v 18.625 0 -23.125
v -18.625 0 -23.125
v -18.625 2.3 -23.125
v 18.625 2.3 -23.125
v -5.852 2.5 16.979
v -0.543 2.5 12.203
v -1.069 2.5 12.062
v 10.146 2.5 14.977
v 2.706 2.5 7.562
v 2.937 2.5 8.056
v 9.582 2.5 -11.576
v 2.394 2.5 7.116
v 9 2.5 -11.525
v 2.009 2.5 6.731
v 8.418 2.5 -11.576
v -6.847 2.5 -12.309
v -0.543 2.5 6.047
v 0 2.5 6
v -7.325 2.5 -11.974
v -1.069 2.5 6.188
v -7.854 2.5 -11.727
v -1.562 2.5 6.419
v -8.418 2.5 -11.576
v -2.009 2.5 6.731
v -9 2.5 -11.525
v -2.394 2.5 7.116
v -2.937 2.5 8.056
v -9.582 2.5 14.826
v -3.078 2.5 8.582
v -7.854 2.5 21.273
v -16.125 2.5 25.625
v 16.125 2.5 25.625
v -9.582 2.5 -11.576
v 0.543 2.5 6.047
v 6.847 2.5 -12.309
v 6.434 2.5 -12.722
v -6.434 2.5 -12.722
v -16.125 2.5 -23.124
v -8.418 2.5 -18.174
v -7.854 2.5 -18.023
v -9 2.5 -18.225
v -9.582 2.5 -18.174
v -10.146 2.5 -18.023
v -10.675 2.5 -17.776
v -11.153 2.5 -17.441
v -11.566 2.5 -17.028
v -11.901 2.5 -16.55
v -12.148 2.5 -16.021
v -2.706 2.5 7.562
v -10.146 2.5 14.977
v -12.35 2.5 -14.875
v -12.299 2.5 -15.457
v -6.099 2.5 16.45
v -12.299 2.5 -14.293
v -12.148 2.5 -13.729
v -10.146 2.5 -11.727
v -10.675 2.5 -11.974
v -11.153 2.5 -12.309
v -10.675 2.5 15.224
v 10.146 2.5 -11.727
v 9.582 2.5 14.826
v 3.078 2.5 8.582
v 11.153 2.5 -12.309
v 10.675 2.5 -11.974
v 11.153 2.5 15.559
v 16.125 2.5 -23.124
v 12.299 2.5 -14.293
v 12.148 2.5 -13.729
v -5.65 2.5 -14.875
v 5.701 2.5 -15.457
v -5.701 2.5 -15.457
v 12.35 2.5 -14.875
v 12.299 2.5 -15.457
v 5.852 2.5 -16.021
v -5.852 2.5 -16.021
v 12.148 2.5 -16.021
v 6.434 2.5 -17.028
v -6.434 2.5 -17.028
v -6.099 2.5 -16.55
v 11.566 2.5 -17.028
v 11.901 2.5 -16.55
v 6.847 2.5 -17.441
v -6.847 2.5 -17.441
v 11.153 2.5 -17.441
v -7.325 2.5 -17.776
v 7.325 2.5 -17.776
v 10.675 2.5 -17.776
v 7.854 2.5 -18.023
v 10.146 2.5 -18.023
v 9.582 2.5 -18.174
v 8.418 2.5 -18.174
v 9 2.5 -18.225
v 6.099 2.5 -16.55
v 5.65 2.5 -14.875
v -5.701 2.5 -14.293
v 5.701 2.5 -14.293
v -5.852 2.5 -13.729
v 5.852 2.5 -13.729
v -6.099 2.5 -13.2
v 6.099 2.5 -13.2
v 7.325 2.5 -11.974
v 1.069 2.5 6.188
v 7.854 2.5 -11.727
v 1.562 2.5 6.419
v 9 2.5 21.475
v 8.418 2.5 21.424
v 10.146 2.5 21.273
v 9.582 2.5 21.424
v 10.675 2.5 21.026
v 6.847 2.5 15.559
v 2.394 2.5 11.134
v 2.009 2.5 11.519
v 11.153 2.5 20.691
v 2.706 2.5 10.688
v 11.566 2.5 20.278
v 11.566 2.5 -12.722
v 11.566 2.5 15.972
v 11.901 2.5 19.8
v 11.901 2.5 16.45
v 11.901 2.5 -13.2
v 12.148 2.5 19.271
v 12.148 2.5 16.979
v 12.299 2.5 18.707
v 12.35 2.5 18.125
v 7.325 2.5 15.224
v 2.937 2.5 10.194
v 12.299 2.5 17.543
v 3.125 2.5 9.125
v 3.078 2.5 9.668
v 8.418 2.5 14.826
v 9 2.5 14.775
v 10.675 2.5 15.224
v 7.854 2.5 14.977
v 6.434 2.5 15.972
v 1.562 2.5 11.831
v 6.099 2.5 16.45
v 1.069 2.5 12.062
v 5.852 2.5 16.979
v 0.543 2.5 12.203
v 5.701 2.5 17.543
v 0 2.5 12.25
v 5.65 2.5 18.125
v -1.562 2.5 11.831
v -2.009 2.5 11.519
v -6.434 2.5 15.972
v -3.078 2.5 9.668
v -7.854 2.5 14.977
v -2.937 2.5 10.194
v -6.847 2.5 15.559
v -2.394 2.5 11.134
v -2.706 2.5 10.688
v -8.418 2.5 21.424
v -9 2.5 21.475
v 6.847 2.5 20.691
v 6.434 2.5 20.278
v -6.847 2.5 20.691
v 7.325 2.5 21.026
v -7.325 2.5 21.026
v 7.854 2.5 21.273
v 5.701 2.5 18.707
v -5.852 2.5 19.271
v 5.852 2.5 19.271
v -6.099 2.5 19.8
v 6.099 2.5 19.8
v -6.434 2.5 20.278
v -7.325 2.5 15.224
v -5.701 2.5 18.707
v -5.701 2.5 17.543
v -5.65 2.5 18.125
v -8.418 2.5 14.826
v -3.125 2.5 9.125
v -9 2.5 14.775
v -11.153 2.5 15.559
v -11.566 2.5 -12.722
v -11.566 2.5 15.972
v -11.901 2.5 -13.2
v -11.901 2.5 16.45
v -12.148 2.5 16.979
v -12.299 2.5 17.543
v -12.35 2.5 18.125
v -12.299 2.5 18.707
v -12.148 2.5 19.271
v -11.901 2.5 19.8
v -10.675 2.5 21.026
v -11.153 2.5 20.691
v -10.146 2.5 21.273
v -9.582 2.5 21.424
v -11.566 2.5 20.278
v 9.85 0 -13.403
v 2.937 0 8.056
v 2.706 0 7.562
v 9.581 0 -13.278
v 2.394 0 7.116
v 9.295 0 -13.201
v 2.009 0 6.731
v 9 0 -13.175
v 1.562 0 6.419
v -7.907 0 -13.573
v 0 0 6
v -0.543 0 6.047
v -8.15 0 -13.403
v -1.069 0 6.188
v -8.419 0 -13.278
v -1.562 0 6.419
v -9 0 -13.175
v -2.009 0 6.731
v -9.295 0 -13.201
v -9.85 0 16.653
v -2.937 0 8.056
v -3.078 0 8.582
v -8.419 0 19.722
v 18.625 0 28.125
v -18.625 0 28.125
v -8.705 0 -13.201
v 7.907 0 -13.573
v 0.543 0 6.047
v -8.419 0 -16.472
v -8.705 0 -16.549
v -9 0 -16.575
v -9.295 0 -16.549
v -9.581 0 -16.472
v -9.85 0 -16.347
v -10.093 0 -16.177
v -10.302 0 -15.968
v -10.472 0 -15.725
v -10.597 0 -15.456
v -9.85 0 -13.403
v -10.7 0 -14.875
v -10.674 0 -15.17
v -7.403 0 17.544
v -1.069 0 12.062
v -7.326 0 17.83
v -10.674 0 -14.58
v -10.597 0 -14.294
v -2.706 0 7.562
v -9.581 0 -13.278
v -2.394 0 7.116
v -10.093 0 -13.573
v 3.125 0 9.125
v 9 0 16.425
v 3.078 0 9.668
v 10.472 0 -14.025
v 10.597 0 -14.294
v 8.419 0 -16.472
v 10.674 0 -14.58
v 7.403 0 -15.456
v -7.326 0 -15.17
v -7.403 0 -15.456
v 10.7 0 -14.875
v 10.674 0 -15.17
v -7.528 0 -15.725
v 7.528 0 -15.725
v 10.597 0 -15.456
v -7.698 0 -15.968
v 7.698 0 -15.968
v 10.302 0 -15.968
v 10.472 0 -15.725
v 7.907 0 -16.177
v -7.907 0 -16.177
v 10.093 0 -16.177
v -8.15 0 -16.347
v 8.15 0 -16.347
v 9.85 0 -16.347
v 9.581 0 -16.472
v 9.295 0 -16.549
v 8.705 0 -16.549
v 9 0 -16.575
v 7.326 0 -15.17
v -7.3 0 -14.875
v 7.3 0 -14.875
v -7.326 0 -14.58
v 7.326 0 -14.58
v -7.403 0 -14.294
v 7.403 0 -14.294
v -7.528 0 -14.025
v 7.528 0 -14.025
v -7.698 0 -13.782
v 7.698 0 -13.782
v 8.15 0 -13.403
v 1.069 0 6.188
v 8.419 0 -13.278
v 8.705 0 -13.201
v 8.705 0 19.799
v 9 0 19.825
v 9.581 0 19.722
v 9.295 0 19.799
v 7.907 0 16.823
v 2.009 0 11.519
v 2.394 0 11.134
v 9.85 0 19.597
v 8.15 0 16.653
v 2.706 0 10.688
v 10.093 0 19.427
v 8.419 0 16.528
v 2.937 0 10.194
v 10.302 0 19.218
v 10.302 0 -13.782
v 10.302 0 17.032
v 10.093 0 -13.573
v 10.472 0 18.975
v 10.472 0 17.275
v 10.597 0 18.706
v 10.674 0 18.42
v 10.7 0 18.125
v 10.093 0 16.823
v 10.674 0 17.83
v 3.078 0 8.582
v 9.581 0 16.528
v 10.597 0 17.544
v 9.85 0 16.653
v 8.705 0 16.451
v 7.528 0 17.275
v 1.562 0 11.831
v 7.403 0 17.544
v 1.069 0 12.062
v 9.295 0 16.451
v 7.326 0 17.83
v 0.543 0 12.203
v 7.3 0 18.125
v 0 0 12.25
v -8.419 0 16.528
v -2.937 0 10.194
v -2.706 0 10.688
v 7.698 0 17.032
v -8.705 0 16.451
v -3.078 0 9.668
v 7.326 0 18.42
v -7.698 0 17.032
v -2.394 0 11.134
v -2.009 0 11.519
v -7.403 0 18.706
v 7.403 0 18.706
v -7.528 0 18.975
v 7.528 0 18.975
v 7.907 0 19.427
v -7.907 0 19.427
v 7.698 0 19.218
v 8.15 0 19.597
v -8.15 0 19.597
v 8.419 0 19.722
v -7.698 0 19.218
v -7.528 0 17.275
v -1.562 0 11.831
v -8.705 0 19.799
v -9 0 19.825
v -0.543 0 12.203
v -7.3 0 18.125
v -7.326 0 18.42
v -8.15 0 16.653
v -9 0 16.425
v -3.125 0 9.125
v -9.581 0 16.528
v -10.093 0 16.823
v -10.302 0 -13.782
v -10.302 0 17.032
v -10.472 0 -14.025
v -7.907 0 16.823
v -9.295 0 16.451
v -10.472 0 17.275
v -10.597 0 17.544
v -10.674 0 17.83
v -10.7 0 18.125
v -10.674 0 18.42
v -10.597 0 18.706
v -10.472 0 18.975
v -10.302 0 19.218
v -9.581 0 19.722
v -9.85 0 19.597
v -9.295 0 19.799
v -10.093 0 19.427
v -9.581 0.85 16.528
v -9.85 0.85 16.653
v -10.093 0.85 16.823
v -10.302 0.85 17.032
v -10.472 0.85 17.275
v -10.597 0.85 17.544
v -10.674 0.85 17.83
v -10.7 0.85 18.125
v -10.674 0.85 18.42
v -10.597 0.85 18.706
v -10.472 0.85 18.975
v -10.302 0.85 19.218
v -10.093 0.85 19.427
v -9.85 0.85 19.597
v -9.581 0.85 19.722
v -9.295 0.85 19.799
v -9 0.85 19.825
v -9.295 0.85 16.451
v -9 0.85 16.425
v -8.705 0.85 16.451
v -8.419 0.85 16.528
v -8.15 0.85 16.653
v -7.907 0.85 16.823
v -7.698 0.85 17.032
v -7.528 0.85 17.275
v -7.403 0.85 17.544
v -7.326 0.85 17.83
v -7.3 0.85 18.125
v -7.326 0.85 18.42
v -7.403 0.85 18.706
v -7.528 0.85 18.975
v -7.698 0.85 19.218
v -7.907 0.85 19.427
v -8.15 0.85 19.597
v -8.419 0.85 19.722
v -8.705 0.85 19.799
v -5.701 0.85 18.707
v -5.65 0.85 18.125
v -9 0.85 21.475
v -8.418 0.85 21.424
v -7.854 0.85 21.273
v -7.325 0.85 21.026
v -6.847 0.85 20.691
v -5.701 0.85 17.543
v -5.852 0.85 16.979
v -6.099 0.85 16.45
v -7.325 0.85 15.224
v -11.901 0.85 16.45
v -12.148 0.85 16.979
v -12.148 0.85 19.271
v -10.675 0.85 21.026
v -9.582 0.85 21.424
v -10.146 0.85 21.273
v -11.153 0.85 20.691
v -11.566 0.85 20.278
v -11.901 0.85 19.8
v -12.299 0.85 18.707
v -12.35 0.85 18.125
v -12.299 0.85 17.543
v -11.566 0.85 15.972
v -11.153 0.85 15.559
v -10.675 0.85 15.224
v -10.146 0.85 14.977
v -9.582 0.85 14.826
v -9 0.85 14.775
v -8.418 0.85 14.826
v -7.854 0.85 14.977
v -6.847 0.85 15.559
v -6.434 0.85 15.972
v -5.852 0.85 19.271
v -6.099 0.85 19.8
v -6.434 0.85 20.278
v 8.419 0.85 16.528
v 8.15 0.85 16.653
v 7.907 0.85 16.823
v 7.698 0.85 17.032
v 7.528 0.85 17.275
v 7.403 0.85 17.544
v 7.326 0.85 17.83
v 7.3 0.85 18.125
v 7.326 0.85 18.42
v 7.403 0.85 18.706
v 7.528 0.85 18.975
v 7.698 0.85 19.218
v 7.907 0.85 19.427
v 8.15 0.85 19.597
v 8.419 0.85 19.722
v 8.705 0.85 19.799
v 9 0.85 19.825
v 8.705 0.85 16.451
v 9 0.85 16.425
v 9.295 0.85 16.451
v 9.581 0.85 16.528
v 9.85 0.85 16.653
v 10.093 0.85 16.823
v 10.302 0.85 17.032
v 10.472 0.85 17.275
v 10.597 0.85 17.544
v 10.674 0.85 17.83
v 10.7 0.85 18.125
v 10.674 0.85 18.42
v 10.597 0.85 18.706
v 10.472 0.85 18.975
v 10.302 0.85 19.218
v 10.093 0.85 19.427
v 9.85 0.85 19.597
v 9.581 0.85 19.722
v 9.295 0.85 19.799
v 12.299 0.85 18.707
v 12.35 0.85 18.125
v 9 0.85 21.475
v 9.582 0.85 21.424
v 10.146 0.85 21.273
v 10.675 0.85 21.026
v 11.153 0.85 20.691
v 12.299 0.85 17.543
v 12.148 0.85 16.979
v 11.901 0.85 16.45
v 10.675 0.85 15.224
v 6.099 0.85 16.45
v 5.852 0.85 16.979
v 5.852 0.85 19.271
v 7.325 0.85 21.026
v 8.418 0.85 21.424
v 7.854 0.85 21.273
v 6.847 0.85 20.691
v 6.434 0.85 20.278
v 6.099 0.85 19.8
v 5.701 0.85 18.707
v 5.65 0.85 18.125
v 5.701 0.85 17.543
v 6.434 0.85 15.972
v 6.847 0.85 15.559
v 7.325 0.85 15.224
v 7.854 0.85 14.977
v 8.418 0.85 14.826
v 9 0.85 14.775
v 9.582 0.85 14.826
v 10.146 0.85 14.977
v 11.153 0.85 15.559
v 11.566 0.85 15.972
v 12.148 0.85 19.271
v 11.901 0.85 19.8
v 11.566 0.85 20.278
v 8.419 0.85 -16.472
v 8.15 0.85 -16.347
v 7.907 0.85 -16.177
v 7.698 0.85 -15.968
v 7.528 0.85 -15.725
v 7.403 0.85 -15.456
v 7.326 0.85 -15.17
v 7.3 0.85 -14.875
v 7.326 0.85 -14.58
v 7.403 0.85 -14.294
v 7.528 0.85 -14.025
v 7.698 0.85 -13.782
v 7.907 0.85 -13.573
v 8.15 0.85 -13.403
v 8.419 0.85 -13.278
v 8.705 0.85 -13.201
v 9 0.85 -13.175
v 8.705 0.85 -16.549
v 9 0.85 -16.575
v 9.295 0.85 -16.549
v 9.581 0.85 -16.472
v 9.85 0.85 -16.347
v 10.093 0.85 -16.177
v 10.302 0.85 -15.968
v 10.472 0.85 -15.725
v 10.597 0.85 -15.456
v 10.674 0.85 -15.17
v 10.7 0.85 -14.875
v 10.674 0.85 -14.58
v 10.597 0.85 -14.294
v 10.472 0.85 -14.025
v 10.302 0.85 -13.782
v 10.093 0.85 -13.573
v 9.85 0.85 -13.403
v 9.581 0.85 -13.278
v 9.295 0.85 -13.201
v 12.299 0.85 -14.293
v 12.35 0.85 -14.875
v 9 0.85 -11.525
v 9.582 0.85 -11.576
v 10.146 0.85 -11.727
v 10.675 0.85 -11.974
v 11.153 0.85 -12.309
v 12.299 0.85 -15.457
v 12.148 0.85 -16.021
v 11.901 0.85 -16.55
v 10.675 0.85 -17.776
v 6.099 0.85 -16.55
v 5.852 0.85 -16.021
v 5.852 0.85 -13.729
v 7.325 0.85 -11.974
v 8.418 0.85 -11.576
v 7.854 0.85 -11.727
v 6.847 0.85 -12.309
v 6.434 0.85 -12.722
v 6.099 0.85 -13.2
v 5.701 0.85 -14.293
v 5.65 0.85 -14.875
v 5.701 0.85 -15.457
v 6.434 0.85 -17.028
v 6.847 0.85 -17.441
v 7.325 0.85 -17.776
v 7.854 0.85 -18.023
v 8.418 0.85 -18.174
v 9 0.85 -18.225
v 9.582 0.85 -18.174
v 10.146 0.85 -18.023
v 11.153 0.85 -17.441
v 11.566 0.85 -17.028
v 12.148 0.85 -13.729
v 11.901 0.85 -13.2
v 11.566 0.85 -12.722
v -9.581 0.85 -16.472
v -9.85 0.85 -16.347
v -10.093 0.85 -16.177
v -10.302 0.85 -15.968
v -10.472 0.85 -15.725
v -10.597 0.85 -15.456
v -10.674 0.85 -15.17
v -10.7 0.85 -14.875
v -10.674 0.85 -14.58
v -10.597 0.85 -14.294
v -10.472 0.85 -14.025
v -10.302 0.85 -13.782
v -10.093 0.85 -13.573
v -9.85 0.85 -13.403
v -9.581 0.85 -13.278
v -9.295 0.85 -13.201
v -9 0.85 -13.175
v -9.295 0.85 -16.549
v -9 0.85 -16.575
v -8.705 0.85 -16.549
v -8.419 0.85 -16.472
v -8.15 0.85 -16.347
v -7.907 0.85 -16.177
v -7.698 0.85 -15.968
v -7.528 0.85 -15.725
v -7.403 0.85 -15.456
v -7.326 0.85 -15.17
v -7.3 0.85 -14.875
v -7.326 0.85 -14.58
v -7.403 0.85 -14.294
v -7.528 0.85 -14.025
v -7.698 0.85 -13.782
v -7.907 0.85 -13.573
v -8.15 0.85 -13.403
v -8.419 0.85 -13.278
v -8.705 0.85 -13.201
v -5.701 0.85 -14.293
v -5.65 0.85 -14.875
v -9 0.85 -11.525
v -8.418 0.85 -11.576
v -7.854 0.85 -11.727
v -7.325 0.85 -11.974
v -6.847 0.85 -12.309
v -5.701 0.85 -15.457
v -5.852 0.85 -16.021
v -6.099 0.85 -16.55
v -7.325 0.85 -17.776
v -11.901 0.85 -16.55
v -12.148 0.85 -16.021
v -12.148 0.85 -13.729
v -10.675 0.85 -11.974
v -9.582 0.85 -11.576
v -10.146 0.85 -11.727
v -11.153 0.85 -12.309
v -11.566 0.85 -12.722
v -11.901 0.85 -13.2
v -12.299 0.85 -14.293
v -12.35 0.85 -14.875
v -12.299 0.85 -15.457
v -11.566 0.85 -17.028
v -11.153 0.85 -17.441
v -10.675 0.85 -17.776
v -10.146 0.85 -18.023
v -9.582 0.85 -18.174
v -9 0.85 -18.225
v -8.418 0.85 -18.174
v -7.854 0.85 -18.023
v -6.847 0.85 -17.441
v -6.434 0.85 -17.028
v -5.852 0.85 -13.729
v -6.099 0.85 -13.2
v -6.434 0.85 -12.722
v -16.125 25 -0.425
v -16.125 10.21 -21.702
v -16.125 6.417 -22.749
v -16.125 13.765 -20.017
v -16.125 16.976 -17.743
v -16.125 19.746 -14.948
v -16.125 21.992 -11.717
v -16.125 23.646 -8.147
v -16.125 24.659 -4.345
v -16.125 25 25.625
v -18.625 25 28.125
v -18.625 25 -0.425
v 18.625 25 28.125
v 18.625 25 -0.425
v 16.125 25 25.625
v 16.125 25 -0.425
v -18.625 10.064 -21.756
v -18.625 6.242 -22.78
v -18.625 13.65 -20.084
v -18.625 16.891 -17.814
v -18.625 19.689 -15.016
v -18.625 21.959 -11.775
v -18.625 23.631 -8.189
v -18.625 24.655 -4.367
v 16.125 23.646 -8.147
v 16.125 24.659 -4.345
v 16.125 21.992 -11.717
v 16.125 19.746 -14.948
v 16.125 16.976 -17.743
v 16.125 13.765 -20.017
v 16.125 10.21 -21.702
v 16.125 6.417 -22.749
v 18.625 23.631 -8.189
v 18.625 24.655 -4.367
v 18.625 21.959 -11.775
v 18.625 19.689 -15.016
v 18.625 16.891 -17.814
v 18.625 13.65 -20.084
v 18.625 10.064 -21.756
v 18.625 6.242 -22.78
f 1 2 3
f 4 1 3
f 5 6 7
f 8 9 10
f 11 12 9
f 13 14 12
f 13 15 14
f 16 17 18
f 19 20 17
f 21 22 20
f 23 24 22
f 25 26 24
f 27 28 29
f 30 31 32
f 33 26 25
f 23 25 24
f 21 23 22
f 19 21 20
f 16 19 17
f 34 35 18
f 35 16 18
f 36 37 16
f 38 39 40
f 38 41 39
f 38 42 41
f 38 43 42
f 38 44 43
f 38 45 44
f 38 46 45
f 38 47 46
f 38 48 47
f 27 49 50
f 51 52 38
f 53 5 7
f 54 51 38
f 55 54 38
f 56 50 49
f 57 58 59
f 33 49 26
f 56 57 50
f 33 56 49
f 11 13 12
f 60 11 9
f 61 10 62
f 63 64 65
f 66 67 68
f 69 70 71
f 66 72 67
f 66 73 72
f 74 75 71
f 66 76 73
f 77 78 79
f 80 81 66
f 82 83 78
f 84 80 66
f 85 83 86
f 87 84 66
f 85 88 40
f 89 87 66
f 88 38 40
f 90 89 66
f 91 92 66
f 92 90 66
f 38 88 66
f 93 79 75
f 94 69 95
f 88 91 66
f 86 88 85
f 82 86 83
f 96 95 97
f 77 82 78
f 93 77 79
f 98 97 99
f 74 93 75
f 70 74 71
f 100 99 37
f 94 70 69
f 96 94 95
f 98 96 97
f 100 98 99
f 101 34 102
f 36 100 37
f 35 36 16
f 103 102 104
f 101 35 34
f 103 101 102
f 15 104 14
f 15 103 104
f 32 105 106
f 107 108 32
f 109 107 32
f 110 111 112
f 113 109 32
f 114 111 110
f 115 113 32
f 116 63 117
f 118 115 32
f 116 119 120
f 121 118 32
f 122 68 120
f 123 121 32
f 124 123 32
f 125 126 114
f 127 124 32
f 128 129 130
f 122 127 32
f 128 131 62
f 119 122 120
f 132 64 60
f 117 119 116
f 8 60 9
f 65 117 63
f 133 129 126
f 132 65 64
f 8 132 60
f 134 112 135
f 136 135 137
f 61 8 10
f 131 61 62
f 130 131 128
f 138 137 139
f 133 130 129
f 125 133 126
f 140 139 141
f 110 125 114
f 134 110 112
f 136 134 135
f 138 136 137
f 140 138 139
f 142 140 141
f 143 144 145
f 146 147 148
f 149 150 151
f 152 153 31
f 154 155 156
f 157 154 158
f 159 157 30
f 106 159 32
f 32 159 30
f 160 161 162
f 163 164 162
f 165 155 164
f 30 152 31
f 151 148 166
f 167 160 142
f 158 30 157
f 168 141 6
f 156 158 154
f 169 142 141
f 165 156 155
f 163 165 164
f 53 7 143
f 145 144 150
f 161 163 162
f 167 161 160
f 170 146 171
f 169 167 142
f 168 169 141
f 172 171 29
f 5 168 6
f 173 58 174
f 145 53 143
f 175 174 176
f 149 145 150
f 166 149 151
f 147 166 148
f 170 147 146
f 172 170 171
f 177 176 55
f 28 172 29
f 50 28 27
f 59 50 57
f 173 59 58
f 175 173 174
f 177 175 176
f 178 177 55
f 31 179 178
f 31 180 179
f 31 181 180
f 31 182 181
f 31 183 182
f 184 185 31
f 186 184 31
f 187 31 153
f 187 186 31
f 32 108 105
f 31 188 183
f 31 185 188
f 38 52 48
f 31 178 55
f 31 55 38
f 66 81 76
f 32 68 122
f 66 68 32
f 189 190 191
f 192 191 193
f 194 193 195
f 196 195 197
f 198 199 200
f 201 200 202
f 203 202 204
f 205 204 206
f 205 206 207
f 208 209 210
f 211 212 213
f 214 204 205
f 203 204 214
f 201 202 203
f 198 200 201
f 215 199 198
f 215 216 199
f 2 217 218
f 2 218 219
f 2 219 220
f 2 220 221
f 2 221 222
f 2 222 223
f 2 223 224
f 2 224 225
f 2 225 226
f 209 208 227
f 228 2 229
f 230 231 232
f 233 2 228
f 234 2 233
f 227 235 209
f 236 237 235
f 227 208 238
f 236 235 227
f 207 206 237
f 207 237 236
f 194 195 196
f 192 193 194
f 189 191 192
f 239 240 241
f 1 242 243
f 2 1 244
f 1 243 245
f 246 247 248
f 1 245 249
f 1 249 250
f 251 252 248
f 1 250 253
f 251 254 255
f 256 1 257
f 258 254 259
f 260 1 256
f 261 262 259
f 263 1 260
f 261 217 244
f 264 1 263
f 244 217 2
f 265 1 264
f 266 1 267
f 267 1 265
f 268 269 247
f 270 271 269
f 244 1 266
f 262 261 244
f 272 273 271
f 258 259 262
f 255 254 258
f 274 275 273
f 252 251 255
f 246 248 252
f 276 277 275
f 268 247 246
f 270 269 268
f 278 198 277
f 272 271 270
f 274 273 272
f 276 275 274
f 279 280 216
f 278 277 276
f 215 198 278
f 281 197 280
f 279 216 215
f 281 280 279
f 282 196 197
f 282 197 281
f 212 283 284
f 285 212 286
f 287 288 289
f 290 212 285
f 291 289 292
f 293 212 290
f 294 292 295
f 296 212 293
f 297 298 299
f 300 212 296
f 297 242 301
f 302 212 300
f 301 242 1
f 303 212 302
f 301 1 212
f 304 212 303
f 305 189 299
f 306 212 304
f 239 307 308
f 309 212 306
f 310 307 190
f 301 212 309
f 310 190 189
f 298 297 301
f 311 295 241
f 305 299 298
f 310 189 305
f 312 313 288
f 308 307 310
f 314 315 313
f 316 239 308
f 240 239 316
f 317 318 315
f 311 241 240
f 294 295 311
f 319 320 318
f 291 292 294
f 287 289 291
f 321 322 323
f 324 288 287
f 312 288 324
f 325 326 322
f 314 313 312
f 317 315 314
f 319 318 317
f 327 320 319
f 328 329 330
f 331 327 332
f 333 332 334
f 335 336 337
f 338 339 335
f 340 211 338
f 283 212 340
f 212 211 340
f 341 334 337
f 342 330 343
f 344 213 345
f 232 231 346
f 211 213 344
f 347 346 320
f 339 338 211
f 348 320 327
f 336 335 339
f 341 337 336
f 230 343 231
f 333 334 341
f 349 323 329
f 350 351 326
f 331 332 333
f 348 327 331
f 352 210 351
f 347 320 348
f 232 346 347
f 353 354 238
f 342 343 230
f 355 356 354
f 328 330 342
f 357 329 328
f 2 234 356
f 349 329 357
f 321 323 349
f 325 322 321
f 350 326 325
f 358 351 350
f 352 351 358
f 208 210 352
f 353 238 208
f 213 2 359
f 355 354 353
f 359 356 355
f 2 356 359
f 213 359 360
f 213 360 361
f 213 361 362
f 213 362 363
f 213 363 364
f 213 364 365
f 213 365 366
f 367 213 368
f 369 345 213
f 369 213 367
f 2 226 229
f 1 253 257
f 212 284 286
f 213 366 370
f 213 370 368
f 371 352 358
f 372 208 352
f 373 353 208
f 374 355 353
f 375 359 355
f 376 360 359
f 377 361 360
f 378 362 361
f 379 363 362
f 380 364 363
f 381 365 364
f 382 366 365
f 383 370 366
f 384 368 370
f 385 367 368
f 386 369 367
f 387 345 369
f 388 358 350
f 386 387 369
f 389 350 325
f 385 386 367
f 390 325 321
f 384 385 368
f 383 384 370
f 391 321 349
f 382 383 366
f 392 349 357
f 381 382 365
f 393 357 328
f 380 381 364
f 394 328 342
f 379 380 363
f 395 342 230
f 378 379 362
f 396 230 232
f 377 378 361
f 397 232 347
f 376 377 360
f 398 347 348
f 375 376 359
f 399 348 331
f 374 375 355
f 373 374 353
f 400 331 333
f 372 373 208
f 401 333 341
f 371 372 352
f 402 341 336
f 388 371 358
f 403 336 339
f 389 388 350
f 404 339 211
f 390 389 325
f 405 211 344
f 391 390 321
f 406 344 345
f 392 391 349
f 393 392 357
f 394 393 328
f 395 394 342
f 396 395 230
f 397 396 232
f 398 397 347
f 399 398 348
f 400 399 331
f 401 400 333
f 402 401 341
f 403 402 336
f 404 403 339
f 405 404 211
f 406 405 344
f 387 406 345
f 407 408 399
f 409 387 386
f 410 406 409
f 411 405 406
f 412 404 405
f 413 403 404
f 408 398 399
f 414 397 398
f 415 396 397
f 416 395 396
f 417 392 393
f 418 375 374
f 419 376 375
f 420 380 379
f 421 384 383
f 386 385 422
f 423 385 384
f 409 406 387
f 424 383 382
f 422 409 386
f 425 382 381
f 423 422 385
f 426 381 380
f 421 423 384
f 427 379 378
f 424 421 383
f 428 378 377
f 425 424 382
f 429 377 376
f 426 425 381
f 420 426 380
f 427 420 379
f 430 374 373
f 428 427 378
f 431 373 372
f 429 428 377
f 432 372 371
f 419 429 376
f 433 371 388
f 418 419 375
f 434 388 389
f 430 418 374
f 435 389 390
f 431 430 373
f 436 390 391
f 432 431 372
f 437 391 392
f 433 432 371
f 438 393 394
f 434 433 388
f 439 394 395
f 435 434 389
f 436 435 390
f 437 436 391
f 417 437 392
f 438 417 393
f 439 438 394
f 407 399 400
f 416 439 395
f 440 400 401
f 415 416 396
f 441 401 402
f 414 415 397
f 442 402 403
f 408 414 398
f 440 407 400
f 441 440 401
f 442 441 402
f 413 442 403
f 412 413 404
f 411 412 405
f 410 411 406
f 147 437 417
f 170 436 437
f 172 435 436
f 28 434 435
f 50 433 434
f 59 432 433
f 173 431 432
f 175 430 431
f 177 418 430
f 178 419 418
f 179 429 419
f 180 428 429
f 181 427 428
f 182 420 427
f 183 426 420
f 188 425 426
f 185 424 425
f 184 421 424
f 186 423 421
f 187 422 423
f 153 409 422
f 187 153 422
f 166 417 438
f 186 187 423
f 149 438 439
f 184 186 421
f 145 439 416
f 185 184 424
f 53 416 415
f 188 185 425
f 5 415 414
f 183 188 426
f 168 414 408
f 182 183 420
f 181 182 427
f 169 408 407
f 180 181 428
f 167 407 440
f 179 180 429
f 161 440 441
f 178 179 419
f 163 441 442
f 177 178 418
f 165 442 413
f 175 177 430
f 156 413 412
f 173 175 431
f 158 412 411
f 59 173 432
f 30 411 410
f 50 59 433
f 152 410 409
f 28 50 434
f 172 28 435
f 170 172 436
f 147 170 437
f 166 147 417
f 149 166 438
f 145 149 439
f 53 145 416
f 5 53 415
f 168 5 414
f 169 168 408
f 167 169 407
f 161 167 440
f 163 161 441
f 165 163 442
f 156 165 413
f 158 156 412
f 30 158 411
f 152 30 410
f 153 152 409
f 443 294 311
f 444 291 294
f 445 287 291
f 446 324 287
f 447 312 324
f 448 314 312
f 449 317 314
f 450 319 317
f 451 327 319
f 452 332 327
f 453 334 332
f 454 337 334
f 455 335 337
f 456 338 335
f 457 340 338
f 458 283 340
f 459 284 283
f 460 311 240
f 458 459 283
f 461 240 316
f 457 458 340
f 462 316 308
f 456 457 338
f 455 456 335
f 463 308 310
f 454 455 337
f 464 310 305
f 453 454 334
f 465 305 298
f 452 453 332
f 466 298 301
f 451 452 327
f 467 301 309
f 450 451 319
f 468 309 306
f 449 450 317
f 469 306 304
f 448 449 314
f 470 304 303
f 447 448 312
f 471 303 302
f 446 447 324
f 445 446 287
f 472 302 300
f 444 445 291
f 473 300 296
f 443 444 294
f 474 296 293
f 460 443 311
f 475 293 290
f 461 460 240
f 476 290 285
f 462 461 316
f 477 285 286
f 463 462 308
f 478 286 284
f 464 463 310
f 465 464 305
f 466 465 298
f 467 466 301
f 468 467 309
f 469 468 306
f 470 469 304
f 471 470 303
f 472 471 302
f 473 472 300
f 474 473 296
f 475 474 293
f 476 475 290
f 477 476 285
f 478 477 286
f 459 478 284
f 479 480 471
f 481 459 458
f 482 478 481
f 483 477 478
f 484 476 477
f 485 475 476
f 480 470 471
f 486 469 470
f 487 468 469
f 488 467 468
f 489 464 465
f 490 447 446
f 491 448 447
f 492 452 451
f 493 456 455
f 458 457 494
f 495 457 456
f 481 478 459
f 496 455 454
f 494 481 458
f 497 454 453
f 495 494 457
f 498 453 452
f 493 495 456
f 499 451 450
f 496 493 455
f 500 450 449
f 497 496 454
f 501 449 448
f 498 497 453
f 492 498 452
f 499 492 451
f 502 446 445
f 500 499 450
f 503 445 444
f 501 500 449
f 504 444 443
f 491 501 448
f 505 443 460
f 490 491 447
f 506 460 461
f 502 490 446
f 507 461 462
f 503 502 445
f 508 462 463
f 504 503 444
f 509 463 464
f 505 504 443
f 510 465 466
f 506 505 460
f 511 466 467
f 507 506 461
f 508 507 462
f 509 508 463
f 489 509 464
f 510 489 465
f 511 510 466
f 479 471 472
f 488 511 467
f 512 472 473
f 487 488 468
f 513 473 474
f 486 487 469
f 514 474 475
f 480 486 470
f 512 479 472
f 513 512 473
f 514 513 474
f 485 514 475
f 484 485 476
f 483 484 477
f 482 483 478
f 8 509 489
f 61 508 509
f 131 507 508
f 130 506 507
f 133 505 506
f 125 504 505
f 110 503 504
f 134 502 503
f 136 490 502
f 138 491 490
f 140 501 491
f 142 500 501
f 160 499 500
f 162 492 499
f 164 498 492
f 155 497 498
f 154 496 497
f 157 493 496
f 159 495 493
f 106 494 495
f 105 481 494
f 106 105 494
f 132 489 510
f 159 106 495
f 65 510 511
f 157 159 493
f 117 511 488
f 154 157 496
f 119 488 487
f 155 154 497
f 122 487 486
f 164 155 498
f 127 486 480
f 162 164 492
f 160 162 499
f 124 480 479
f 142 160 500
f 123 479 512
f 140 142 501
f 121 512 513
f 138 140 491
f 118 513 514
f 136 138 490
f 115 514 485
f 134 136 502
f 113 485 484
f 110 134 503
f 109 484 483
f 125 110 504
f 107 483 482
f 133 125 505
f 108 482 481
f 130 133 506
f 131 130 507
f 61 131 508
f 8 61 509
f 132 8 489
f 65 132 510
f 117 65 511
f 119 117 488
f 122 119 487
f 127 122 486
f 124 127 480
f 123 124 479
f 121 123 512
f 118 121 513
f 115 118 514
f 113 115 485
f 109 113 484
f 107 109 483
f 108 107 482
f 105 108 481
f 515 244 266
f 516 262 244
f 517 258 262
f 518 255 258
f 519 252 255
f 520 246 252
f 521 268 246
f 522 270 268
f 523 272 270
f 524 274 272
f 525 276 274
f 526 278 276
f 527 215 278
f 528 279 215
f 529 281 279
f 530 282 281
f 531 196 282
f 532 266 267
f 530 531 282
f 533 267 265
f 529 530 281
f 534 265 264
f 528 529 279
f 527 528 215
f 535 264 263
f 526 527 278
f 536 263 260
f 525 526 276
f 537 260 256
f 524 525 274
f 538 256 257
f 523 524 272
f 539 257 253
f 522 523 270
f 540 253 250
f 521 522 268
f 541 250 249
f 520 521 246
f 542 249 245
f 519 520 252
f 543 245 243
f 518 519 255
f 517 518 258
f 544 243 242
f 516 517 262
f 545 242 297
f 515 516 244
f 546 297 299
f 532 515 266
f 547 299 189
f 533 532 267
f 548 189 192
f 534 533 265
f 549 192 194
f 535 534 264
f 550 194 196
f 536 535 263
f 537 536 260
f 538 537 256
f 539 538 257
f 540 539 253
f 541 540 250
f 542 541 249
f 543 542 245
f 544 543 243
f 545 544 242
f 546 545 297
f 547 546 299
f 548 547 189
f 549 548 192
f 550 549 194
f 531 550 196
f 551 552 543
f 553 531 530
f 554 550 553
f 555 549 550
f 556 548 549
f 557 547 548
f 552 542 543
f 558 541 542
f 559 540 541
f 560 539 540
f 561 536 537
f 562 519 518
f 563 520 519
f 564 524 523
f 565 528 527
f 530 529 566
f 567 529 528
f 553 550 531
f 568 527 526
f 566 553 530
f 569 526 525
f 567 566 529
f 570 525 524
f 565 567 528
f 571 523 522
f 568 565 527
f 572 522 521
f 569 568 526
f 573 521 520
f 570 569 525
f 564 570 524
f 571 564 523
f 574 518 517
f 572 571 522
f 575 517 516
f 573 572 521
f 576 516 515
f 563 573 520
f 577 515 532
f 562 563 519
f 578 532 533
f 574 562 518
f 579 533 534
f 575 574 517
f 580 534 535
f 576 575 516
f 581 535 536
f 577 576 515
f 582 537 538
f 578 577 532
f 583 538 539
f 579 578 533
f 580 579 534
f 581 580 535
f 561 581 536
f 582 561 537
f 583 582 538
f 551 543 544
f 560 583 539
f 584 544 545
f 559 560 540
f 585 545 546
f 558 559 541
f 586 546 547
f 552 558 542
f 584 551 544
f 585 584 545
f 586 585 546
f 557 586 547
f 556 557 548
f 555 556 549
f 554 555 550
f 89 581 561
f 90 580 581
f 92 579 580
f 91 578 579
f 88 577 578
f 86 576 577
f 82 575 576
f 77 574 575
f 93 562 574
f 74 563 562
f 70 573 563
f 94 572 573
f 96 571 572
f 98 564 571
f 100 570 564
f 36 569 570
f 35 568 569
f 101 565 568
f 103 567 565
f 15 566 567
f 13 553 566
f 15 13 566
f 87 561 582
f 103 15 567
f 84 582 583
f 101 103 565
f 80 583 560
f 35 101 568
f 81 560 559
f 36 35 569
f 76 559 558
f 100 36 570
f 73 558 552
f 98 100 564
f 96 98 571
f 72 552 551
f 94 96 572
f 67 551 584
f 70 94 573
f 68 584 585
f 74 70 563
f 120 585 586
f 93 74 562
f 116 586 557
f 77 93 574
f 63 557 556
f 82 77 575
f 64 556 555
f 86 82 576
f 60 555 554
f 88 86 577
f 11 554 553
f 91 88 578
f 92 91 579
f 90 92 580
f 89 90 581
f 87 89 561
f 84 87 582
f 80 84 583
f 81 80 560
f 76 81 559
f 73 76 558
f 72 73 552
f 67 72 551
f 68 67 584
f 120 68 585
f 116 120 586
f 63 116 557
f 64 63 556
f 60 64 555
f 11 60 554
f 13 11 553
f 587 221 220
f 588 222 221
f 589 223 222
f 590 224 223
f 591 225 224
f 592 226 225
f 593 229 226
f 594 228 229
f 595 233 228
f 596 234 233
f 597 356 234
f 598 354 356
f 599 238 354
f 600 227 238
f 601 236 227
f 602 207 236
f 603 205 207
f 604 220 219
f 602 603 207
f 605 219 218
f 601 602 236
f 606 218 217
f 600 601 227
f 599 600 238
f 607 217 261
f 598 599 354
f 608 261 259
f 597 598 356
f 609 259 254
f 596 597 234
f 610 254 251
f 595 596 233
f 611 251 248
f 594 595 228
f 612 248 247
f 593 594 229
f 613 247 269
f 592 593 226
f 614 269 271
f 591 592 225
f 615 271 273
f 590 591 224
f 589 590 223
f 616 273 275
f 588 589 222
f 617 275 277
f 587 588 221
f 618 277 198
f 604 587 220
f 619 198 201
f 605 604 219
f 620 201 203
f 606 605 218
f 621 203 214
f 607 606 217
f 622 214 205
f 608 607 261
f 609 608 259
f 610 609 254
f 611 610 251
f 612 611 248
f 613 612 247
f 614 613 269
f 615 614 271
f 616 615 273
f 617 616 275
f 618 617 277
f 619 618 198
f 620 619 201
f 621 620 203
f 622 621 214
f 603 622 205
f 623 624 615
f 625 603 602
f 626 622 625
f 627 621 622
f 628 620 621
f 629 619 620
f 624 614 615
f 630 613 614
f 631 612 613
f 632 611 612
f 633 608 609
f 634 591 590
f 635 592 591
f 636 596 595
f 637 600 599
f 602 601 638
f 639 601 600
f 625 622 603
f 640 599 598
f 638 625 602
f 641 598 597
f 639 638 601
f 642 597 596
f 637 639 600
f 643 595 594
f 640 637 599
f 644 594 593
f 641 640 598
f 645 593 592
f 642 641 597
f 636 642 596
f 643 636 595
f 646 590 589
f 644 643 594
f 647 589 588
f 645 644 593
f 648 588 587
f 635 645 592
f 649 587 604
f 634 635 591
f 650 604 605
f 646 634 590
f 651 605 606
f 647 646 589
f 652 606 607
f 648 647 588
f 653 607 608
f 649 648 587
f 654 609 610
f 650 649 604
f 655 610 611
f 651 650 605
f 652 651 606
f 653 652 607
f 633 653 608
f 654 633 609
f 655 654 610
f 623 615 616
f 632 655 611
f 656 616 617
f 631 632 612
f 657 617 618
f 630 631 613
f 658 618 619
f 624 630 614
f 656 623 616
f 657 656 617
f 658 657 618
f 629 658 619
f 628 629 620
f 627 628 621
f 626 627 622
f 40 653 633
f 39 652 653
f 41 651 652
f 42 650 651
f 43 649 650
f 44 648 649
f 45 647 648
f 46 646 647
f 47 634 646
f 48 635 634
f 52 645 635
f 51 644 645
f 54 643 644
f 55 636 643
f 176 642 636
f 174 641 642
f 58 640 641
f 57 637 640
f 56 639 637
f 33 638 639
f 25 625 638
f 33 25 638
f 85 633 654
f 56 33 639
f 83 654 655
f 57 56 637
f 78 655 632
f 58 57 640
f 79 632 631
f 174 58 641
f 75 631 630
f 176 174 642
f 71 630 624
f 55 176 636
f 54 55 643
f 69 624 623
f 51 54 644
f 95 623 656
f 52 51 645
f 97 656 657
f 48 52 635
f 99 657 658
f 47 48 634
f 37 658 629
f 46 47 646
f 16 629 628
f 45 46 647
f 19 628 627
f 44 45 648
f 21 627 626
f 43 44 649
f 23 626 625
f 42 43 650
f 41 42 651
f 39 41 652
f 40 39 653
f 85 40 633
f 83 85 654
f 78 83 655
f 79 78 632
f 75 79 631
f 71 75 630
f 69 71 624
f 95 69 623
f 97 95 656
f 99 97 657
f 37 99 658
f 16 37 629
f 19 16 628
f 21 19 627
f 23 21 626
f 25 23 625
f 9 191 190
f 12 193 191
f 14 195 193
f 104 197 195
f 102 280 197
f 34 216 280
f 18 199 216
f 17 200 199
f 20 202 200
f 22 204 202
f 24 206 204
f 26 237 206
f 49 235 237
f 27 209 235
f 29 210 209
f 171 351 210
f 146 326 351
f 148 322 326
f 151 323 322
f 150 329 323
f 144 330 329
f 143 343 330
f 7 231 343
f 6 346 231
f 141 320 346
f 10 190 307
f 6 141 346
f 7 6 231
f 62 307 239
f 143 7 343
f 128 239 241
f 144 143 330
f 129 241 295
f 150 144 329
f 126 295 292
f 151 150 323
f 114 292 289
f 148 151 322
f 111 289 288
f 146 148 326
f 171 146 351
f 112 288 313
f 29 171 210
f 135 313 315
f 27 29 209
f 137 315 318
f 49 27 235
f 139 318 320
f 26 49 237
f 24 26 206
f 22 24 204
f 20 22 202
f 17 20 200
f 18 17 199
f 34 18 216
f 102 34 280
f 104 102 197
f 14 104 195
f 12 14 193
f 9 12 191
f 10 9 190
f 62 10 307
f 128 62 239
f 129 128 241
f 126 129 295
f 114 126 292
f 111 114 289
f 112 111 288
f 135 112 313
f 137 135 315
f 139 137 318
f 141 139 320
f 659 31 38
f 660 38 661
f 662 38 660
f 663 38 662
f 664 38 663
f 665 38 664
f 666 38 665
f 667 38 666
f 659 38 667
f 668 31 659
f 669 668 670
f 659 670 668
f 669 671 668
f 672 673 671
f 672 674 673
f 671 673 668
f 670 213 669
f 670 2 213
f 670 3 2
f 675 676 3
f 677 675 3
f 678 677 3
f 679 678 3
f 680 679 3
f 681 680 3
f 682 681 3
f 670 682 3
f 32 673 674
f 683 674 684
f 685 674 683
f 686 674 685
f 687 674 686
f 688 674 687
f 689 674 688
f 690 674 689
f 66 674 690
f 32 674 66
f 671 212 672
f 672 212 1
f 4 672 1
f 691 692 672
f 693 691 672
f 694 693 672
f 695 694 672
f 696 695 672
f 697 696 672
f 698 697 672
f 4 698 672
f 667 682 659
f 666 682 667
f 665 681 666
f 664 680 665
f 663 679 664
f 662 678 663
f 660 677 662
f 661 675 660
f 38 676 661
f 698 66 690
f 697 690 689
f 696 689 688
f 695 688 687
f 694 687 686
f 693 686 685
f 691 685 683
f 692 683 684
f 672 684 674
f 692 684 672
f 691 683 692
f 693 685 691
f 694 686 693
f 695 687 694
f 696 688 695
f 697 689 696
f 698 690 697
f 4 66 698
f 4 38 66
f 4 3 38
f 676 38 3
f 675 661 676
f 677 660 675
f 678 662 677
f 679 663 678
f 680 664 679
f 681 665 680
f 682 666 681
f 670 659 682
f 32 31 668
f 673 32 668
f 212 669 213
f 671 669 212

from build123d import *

# Parameters (mm, degrees)
SKETCH12_W                      = 32.25
SKETCH12_H                      = 46.25
BOSS_EXTRUDE2_DEPTH             = 2.5
CBORE_FOR_M3_SBHCS1_D           = 3.4
CBORE_FOR_M3_SBHCS1_CBORE_D     = 6.7
CBORE_FOR_M3_SBHCS1_CBORE_DEPTH = 1.65
F_6_0MM_DOWEL_HOLE1_D           = 6.25
SKETCH20_W                      = 46.25
SKETCH20_H                      = 25
BOSS_EXTRUDE3_DEPTH             = 2.5
FILLET1_R                       = 22.7
BOSS_EXTRUDE4_DEPTH             = 2.5
SKETCH23_W                      = 37.25
SKETCH23_H                      = 25
BOSS_EXTRUDE5_DEPTH             = 2.5


with BuildPart() as part:
    # Sketch12 → Boss-Extrude2 (new body)
    with BuildSketch(Plane(origin=(0, 0, 0), x_dir=(1, 0, 0), z_dir=(0, 1, 0))):
        Rectangle(SKETCH12_W, SKETCH12_H)
    extrude(amount=BOSS_EXTRUDE2_DEPTH)

    # CBORE for M3 SBHCS1 (through all)
    with Locations(Plane(origin=(0, 2.5, 0), x_dir=(1, 0, 0), z_dir=(0, 1, 0))):
        with Locations((-9, 14.875), (9, 14.875), (9, -18.125), (-9, -18.125)):
            CounterBoreHole(CBORE_FOR_M3_SBHCS1_D / 2, CBORE_FOR_M3_SBHCS1_CBORE_D / 2, CBORE_FOR_M3_SBHCS1_CBORE_DEPTH)

    # Ø6.0mm Dowel Hole1 (through all)
    with Locations(Plane(origin=(0, 2.5, 0), x_dir=(1, 0, 0), z_dir=(0, 1, 0))):
        with Locations((0, -9.125)):
            Hole(F_6_0MM_DOWEL_HOLE1_D / 2)

    # Sketch20 → Boss-Extrude3 (add)
    with BuildSketch(Plane.ZY.offset(16.125)):
        with Locations((0, 12.5)):
            Rectangle(SKETCH20_W, SKETCH20_H)
    boss_extrude3 = extrude(amount=BOSS_EXTRUDE3_DEPTH)

    # Mirror1: Boss-Extrude3 across plane
    add(boss_extrude3.mirror(Plane.ZY))

    # Fillet1
    fillet1_edges = [part.edges().sort_by_distance(p)[0] for p in [
        (-17.375, 25, -23.125),
    ]]
    fillet(fillet1_edges, radius=FILLET1_R)

    # Sketch22 → Boss-Extrude4 (add)
    with BuildSketch(Plane.XY.offset(23.125)):
        Polygon((-18.625, 0), (18.625, 0), (18.625, 25), (16.125, 25), (16.125, 2.5), (-16.125, 2.5), (-16.125, 25), (-18.625, 25), align=None)
    extrude(amount=BOSS_EXTRUDE4_DEPTH)

    # Sketch23 → Boss-Extrude5 (add)
    with BuildSketch(Plane.XY.offset(25.625)):
        with Locations((0, 12.5)):
            Rectangle(SKETCH23_W, SKETCH23_H)
    extrude(amount=BOSS_EXTRUDE5_DEPTH)


solid = part.part
